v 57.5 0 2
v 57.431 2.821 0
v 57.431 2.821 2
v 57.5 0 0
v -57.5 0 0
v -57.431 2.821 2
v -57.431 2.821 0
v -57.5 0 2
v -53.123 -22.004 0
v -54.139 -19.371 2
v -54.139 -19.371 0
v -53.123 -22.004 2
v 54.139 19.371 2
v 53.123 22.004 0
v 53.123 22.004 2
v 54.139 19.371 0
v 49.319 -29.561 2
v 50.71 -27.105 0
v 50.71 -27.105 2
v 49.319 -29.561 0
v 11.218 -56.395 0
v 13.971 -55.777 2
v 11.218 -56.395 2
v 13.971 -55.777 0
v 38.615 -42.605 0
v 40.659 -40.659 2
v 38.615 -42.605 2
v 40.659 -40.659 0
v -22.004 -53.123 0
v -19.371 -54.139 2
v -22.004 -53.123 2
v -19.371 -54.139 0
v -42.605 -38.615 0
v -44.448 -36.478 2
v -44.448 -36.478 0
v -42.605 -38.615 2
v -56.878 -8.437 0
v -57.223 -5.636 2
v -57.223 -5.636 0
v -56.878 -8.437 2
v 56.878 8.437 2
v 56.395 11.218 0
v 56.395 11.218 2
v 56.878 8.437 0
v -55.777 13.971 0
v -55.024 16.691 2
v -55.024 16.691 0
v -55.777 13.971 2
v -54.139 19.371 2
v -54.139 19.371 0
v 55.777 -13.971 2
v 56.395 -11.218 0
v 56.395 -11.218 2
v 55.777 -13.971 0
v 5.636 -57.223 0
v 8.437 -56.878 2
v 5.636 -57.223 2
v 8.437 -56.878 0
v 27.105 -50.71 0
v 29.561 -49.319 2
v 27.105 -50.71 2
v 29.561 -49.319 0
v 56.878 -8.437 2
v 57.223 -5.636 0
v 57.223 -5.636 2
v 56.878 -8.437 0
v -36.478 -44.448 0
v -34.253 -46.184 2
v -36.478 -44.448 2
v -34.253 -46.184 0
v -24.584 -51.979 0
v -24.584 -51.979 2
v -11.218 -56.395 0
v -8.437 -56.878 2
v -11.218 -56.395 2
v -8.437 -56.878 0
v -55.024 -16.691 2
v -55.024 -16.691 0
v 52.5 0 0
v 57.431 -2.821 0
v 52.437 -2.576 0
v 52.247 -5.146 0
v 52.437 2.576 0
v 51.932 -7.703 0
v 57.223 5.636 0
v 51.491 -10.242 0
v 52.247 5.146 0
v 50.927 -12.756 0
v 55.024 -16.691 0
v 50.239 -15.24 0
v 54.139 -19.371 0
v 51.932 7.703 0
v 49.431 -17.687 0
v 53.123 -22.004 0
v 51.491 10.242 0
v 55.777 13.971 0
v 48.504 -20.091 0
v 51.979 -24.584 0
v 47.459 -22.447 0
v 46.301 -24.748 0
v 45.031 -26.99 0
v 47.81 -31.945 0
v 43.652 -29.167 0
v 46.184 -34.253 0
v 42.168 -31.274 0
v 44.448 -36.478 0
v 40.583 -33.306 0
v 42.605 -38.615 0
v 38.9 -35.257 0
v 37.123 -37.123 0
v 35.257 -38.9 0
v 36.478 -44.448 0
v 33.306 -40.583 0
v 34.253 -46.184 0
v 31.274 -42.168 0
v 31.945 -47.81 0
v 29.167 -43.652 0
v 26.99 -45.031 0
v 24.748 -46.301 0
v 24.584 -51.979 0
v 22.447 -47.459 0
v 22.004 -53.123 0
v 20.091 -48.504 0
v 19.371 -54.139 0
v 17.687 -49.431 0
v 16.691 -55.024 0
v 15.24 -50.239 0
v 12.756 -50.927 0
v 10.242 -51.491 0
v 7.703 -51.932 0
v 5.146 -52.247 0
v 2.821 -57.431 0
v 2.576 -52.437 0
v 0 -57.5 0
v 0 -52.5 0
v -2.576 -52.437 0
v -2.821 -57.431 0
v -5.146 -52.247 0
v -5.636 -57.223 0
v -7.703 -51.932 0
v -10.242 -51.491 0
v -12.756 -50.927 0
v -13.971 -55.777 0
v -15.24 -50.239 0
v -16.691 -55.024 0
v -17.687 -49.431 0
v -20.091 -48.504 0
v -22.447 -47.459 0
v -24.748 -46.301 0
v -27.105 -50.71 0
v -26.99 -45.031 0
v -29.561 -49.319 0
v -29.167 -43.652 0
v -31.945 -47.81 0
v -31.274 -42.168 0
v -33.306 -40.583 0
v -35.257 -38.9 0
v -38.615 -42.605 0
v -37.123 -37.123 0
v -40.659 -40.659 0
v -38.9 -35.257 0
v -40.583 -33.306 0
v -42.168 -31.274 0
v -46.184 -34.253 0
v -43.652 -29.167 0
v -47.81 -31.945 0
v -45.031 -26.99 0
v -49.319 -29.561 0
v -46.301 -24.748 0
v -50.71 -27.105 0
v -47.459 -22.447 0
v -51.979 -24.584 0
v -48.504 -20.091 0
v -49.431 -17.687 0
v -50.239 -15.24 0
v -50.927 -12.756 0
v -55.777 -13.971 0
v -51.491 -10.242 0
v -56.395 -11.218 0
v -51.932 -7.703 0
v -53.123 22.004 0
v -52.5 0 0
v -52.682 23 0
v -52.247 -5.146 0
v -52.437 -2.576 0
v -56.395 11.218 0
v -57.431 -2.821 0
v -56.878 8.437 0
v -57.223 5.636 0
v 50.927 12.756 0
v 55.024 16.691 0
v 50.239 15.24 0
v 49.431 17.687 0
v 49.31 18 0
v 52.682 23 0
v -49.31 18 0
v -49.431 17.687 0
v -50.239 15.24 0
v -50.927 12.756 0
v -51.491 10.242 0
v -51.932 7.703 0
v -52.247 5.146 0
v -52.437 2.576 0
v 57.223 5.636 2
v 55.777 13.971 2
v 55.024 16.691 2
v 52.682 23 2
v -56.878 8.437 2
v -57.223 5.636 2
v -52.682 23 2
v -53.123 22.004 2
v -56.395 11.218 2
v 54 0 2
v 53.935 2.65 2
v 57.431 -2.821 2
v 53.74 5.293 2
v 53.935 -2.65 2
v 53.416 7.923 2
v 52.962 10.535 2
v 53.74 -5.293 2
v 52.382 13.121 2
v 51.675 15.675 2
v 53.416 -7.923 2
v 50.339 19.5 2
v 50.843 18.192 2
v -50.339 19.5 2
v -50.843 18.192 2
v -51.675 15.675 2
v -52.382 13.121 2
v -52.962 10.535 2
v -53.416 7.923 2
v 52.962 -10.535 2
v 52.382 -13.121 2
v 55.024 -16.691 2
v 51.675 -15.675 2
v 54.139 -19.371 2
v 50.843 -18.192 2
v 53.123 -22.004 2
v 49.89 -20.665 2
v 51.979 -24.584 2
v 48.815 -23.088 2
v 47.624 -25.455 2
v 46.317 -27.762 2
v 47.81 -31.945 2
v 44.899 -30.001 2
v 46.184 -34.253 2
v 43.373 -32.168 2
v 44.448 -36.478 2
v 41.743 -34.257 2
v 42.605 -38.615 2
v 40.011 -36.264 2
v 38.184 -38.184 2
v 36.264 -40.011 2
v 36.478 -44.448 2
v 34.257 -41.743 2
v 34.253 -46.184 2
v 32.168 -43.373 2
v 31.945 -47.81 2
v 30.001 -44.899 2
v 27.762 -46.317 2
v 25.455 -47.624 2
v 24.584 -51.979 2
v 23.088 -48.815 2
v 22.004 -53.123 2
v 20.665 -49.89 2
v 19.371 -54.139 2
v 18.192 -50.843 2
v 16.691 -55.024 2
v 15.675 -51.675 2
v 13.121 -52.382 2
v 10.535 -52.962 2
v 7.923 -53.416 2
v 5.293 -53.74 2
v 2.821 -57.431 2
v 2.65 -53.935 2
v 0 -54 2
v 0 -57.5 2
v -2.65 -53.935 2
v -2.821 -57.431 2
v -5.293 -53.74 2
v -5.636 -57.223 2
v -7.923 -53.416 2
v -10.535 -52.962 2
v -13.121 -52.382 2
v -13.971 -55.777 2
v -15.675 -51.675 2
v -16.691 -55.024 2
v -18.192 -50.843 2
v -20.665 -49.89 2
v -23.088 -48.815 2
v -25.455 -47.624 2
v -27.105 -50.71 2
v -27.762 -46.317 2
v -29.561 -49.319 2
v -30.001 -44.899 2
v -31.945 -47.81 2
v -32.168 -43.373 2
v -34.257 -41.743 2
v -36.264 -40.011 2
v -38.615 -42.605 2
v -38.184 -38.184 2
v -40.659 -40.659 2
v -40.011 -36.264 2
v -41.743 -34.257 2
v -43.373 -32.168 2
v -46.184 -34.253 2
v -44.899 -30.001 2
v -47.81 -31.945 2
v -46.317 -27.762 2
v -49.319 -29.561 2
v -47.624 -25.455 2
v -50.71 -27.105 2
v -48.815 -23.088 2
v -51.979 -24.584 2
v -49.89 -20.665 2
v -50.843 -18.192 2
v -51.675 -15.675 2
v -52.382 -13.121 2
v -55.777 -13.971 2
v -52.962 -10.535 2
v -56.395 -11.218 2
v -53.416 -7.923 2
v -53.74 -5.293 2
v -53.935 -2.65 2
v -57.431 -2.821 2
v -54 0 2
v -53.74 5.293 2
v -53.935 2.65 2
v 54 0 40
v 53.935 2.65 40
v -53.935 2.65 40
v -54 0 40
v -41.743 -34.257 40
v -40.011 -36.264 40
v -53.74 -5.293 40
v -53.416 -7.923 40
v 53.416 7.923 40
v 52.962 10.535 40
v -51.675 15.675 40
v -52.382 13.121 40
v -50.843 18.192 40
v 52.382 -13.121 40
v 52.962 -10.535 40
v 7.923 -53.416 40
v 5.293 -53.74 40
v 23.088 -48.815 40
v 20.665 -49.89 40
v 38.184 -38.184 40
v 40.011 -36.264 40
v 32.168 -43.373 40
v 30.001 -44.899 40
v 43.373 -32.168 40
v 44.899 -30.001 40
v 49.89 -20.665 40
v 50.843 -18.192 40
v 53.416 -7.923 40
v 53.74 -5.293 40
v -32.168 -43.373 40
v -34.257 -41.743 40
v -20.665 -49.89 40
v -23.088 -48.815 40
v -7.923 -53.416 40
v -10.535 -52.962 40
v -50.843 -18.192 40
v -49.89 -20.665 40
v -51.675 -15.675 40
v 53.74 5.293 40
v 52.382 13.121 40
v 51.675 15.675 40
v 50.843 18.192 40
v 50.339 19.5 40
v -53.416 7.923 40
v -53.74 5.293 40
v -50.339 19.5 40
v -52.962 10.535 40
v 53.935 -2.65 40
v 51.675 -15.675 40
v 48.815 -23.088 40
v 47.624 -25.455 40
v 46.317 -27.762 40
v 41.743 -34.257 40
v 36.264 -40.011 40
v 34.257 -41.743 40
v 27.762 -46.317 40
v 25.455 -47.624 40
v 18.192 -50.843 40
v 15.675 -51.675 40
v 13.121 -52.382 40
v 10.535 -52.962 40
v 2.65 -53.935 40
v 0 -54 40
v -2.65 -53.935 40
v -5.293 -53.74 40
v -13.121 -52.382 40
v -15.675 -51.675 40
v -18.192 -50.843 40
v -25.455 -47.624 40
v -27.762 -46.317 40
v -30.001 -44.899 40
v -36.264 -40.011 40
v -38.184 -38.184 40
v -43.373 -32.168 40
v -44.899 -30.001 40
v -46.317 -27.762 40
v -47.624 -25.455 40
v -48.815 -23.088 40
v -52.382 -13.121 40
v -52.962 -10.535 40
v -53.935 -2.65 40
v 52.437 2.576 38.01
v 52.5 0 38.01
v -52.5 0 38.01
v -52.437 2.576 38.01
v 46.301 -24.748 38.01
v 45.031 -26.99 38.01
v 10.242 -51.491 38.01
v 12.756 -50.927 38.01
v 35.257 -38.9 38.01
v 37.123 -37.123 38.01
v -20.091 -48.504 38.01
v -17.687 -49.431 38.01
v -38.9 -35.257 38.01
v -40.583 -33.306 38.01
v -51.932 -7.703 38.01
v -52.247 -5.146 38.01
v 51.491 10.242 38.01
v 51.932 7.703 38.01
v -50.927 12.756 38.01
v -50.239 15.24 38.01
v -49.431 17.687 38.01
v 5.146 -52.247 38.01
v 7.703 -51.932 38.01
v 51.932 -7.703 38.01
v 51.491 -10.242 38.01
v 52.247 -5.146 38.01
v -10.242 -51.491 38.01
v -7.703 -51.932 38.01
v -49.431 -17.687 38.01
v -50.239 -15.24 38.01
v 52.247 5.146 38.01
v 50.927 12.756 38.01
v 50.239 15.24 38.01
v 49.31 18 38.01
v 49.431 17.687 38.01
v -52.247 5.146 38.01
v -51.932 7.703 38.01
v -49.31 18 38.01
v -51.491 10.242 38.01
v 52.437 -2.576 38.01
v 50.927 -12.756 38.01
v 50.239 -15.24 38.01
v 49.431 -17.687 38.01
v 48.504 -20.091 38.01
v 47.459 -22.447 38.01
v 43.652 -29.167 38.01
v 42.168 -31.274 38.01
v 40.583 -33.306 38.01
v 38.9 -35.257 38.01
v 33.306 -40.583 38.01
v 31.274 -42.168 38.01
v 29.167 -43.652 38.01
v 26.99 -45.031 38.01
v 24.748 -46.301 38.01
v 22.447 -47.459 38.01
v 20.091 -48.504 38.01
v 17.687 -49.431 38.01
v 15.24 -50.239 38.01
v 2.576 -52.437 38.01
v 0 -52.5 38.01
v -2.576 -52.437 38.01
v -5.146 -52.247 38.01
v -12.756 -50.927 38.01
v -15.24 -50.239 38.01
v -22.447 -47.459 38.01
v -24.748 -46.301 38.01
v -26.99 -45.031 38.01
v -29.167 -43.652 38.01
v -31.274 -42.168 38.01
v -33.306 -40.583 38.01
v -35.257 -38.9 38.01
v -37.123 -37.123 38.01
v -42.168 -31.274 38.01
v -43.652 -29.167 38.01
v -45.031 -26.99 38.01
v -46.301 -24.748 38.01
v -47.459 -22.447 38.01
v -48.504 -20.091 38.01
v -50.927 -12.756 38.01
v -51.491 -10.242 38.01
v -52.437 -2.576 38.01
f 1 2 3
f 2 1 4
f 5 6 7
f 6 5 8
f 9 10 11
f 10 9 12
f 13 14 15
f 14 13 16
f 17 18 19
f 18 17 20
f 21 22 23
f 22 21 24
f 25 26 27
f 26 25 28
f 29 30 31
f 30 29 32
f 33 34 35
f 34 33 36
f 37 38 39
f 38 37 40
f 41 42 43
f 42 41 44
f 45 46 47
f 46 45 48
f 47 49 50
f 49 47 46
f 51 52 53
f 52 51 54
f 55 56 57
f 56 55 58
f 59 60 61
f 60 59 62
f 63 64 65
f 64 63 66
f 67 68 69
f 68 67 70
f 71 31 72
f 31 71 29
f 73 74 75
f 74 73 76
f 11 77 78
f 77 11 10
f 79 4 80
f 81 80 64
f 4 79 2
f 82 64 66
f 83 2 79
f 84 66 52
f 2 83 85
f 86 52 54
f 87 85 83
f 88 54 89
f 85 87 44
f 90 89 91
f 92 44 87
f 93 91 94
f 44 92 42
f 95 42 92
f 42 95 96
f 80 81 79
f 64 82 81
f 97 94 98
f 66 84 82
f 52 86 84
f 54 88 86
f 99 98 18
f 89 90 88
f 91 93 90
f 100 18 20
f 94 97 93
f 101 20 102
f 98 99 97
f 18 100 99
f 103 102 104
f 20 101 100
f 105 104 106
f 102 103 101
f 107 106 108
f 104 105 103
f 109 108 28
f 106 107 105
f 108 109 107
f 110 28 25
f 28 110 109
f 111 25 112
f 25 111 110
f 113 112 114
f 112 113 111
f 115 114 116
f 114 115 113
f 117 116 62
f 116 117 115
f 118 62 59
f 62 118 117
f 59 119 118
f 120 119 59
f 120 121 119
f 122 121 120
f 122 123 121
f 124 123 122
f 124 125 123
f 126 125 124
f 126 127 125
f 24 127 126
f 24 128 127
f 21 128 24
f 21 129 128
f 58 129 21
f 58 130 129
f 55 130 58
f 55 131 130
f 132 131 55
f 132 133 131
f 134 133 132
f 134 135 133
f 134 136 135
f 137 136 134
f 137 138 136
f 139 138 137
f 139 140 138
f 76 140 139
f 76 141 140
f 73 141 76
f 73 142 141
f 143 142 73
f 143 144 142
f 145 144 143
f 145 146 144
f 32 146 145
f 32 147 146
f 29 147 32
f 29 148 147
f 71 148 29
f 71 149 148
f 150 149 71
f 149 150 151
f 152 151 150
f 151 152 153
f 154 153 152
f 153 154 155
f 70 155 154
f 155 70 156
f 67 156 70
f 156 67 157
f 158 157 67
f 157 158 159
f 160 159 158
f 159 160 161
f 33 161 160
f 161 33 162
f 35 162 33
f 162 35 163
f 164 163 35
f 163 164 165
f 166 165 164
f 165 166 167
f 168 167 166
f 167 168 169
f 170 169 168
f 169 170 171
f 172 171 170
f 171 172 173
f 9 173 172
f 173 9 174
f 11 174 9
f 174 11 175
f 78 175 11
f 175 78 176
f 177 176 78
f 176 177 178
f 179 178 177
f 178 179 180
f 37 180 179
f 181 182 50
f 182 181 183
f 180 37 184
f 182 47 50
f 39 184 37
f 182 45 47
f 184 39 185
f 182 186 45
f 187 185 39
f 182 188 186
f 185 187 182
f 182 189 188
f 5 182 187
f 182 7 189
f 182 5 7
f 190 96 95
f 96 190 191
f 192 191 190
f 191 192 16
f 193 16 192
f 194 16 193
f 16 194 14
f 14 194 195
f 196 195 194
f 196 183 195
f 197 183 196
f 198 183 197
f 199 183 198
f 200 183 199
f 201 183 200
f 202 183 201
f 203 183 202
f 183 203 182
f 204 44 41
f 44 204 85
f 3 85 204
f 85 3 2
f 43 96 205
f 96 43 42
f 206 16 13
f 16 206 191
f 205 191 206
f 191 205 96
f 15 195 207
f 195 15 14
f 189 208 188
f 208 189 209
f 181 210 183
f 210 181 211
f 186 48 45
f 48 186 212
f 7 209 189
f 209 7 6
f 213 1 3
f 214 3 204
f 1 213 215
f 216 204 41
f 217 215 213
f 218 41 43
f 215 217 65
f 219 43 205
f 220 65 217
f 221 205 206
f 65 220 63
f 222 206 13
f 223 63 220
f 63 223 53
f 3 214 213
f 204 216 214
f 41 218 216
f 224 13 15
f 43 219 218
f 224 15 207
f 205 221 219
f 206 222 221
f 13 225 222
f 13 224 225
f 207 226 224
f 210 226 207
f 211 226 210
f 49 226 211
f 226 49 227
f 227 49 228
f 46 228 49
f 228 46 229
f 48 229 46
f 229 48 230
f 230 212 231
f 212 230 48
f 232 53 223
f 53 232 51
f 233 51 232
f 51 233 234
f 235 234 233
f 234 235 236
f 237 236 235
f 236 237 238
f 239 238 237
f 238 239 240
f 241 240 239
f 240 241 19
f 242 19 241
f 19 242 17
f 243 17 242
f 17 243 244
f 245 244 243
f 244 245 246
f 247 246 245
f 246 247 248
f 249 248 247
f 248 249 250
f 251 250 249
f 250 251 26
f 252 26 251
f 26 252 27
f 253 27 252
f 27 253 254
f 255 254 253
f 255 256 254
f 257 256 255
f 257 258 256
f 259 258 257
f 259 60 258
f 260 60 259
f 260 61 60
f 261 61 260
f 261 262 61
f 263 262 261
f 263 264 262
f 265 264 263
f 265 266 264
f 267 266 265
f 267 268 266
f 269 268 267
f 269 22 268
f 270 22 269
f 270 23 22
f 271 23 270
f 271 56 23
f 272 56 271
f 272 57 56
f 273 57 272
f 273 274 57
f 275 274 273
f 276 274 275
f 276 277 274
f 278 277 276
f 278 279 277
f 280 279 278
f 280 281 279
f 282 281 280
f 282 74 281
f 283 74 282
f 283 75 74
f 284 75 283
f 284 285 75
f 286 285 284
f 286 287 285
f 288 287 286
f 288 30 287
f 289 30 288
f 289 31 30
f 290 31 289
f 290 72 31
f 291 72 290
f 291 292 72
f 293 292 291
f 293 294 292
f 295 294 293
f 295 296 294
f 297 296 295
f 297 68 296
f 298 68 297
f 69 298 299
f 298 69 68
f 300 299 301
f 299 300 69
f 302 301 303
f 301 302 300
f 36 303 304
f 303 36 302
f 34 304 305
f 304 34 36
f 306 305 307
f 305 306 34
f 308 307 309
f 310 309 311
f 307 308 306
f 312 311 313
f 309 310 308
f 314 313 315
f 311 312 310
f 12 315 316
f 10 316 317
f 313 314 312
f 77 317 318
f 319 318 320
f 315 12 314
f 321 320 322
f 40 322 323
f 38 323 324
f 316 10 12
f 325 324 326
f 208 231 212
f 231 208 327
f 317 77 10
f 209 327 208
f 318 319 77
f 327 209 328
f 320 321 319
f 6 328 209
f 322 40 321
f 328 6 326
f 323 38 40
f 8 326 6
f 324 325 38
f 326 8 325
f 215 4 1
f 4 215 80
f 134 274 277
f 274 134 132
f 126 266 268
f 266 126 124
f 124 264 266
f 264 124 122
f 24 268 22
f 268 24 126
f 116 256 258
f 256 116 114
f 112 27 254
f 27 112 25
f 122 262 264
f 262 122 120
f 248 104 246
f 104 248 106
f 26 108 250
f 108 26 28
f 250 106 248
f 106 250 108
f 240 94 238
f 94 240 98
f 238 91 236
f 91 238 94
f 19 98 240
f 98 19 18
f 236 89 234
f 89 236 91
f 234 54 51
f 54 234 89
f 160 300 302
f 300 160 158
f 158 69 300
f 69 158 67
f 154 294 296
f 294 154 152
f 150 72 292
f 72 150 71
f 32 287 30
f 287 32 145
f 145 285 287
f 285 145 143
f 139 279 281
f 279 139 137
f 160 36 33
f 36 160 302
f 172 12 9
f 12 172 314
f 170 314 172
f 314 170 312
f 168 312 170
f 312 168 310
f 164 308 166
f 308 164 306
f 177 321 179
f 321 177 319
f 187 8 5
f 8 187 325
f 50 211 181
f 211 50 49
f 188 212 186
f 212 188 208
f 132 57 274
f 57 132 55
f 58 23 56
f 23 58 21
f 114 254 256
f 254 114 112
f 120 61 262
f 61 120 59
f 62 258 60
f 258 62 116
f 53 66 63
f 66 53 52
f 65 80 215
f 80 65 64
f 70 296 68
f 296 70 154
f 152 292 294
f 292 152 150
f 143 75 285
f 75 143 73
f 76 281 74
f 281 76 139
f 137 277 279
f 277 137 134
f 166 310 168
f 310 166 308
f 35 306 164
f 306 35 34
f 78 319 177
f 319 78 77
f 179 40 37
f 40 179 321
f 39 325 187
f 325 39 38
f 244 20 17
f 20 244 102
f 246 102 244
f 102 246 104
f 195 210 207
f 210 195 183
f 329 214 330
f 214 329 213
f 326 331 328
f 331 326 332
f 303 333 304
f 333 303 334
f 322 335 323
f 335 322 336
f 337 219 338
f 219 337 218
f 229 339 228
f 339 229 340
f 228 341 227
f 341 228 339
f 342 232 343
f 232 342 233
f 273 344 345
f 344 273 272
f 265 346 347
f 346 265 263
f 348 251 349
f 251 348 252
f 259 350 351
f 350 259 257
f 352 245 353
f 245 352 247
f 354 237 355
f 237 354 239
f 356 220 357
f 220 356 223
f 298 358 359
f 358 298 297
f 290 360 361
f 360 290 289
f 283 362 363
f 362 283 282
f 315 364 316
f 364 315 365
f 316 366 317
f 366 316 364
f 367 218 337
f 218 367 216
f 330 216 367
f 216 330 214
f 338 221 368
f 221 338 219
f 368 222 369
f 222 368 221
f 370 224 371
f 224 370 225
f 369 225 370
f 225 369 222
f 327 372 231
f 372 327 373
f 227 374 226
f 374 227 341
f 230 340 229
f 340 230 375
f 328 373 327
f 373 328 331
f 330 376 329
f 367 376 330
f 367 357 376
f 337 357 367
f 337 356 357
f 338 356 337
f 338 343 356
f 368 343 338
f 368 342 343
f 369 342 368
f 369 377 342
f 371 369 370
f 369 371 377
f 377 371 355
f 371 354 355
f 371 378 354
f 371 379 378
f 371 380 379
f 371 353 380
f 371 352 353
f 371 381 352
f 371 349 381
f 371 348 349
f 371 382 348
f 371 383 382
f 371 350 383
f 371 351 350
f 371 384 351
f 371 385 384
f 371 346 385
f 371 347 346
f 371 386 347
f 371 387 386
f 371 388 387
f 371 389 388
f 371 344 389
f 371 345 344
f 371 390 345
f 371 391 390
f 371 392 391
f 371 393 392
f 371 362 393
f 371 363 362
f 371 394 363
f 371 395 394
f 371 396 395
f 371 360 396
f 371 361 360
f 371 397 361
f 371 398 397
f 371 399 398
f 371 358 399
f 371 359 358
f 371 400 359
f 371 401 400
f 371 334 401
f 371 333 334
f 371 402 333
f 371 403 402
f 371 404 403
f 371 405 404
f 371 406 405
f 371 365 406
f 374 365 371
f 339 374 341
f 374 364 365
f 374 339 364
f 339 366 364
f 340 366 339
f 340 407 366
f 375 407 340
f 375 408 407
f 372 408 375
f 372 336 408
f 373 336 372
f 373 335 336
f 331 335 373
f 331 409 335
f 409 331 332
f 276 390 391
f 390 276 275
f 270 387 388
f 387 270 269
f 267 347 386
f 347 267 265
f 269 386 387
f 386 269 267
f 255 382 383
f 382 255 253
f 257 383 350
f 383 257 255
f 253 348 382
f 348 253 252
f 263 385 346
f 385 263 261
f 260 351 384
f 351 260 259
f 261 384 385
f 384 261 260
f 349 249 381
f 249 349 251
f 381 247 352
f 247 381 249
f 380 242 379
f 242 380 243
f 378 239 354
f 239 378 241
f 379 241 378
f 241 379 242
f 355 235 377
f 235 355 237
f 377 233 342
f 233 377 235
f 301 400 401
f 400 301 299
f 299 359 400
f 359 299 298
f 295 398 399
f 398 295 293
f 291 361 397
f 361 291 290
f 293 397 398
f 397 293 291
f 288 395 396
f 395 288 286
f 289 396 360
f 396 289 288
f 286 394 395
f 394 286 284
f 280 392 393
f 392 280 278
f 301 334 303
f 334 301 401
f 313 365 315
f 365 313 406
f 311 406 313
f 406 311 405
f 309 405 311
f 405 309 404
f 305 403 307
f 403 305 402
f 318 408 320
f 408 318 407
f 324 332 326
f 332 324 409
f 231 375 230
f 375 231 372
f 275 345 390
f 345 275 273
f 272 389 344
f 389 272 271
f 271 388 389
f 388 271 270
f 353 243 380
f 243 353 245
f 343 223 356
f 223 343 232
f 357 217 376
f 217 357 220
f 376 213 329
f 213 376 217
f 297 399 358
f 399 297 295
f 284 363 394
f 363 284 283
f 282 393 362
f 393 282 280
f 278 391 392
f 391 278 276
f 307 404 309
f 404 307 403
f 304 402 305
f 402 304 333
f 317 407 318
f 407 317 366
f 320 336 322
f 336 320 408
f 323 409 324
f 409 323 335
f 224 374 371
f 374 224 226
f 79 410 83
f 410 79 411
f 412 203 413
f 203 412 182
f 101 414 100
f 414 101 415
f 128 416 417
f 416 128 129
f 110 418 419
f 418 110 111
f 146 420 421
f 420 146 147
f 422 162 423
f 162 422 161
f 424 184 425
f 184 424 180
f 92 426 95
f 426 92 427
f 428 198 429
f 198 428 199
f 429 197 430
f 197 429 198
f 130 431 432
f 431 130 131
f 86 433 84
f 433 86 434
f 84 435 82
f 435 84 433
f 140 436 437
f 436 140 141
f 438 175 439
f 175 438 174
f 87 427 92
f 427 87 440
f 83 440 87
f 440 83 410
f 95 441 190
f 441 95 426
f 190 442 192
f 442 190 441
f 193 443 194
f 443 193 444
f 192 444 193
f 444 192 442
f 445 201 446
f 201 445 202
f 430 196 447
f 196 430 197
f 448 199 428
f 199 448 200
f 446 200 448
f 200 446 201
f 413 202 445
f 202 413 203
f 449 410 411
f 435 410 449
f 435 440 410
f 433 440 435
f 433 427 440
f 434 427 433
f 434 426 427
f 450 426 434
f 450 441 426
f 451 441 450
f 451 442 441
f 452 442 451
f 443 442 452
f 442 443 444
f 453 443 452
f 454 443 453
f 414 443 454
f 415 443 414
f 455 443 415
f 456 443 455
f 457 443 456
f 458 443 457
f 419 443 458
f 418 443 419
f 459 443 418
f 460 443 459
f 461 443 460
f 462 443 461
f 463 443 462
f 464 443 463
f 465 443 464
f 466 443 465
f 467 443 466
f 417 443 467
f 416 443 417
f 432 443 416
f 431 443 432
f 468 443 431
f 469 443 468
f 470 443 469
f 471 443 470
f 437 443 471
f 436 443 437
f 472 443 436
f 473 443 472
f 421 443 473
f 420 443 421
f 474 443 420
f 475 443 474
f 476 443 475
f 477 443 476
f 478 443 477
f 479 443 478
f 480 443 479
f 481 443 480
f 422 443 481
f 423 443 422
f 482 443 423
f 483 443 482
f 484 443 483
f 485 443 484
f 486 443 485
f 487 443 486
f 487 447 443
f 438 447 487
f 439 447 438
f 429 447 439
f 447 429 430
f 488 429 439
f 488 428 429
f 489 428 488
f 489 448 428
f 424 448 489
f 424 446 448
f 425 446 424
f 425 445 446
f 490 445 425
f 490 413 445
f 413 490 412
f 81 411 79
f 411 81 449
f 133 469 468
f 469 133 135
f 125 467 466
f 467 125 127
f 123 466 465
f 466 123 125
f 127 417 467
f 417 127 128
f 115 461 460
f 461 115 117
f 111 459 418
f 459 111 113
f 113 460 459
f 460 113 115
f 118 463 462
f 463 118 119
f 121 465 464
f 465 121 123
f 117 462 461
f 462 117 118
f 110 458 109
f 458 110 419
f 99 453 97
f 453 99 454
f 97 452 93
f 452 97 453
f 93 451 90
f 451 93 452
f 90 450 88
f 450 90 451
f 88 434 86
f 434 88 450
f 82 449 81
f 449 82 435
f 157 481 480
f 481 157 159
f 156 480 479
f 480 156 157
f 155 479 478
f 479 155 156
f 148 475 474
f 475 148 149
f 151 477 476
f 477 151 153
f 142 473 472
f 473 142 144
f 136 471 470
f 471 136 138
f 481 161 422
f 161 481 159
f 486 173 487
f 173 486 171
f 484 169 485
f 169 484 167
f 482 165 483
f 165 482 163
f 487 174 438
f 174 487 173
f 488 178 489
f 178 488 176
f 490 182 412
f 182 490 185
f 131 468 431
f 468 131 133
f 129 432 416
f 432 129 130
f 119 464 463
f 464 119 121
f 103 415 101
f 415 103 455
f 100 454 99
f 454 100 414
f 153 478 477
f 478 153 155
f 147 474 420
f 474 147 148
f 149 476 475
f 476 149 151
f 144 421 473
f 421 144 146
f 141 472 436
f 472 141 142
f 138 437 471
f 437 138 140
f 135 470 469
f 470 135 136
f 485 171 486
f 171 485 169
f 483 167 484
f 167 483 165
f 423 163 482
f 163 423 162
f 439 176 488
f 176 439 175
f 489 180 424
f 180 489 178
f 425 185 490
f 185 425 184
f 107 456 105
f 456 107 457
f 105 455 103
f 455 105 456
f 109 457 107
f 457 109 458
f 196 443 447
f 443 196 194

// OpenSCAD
$fn = 128;
wall = 1.5;
r_inner = 105/2; // dimensions of bag holder
l_rim = 5;
h_cup = 40;
h_rim = 2;

depth_cup_max = 36/2;

color("pink")
cup();

module cup(){
  difference(){
    union(){
      //rim
      difference(){
        cylinder(r=r_inner+l_rim, h=h_rim);
        translate([-r_inner-10,depth_cup_max+l_rim,0])
        cube([r_inner*3, r_inner*3, h_cup]);
      }
      // outer wall of cup
      difference(){
        cylinder(r=r_inner+wall, h=h_cup);
        translate([-r_inner+wall,depth_cup_max+wall,0])
        cube([r_inner*4, r_inner*4, h_cup]);
      }
    }
    // hole of cup
    translate([0,0,-h_rim])
    difference(){
      cylinder(r=r_inner, h=h_cup+0.01);
      translate([-r_inner,depth_cup_max,h_rim])
      cube([r_inner*2, r_inner*2, h_cup]);
    }
  }
}
